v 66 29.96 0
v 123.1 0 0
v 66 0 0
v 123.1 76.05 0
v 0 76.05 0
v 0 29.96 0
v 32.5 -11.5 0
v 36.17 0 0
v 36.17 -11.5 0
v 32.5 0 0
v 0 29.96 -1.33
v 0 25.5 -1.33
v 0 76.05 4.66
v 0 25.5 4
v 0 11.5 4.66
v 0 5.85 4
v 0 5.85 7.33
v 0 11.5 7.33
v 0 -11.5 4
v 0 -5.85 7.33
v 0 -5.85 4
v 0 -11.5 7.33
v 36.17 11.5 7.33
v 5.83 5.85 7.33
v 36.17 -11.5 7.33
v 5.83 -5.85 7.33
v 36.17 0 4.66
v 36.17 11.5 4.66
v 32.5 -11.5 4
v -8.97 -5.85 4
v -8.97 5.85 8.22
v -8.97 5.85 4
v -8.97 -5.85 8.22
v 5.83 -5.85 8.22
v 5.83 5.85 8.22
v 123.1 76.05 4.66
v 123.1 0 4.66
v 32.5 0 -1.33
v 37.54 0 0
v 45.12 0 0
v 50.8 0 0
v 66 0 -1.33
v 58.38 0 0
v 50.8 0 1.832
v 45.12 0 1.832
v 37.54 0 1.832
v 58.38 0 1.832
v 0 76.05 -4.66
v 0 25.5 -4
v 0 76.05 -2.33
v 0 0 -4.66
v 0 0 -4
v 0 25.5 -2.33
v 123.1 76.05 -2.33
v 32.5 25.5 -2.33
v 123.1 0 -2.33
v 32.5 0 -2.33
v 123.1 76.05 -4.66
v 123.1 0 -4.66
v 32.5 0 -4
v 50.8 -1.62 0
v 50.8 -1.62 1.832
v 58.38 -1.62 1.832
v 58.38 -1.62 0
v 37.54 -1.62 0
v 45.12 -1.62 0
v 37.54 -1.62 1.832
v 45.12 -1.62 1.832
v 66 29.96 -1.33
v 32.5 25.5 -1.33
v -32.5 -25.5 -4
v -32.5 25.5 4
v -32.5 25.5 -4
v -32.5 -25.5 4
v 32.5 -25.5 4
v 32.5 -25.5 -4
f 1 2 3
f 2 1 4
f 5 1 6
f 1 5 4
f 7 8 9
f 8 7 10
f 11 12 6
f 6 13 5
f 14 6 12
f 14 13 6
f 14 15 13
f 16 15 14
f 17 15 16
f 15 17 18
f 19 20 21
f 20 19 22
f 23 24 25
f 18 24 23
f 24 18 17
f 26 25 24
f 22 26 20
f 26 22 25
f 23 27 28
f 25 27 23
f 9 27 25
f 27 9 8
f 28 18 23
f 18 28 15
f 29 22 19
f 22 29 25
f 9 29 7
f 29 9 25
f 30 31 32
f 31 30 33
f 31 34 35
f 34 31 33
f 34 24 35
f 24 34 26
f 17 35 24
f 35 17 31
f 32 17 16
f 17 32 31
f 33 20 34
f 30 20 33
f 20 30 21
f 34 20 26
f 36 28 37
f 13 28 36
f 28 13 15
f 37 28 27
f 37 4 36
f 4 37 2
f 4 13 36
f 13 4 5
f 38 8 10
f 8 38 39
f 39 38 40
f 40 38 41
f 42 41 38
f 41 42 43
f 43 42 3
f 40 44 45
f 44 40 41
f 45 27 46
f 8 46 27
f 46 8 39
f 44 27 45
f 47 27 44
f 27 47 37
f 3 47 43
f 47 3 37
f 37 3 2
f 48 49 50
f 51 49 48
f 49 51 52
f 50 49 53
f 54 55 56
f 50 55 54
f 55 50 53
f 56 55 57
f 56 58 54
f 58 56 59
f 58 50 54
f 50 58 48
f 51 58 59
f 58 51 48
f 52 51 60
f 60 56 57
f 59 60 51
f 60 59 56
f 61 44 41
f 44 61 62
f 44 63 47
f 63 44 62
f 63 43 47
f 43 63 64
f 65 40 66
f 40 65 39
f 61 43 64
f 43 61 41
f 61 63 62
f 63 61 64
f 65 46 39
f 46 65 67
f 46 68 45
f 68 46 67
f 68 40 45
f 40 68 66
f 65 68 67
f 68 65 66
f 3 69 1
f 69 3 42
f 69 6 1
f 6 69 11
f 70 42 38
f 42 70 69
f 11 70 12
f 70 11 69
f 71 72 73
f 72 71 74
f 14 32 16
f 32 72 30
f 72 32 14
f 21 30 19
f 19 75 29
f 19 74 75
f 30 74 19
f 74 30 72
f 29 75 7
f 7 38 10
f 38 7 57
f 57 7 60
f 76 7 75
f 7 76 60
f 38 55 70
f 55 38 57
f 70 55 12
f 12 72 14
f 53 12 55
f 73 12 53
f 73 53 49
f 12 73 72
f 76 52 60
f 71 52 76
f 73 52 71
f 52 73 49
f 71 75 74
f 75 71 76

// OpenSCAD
union() {
	union() {
		union() {
			union() {
				union() {
					union() {
						union() {
							union() {
								translate(v = [0, 0, 0]) {
									color(c = [0, 0, 1]) {
										cube(size = [15.2500000000, 24.3400000000, 3]);
									}
								}
								translate(v = [0, 0, 0]) {
									union() {
										color(c = [0, 0.5000000000, 0]) {
											translate(v = [0, 0, -2.3000000000]) {
												translate(v = [-9.9950000000, 0, 0]) {
													translate(v = [0, -11.9950000000, 0]) {
														cube(size = [23.9900000000, 23.9900000000, 2.3000000000]);
													}
												}
											}
										}
										color(c = [0, 0, 0]) {
											translate(v = [-4.2000000000, -4.2000000000, 0]) {
												cube(size = [8.4000000000, 8.4000000000, 2.3000000000]);
											}
											translate(v = [0, 0, 2.3000000000]) {
												cylinder(h = 2.3000000000, r1 = 4.0000000000, r2 = 4.0000000000);
											}
										}
									}
								}
							}
							translate(v = [0, 0, 0]) {
								union() {
									color(c = [0, 0.5000000000, 0]) {
										translate(v = [0, -11.5000000000, 0]) {
											cube(size = [36.1700000000, 23.0000000000, 7.3300000000]);
										}
									}
									color(c = [0.8240000000, 0.8240000000, 0.8240000000]) {
										translate(v = [-8.9700000000, 0, 0]) {
											translate(v = [0, 0, 2.3300000000]) {
												translate(v = [0, -5.8500000000, 0]) {
													cube(size = [14.8000000000, 11.7000000000, 5.8900000000]);
												}
											}
										}
									}
								}
							}
						}
						translate(v = [0, 0, 0]) {
							color(c = [0.7000000000, 0.7000000000, 0.7000000000]) {
								cube(center = true, size = [21.6200000000, 18.0000000000, 7.7700000000]);
							}
						}
					}
					translate(v = [0, 0, 0]) {
						union() {
							color(c = [0.5000000000, 0.5000000000, 0]) {
								cube(size = [123.1000000000, 76.0500000000, 4.6600000000]);
							}
							color(c = [0.8240000000, 0.8240000000, 0.8240000000]) {
								translate(v = [0, 0, -4.6600000000]) {
									cube(size = [123.1000000000, 76.0500000000, 2.3300000000]);
								}
							}
						}
					}
				}
				translate(v = [0, 0, 0]) {
					color(c = [0, 0, 1]) {
						cube(center = true, size = [48.0000000000, 40.7500000000, 5.6900000000]);
					}
				}
			}
			translate(v = [0, 0, 0]) {
				union() {
					union() {
						translate(v = [0, -1.6200000000, 0]) {
							translate(v = [37.5400000000, 0, 0]) {
								union() {
									translate(v = [13.2600000000, 0, 0]) {
										color(c = [0.8240000000, 0.8240000000, 0.8240000000]) {
											cube(size = [7.5800000000, 5.5500000000, 1.8325000000]);
										}
									}
									color(c = [0.8240000000, 0.8240000000, 0.8240000000]) {
										cube(size = [7.5800000000, 5.5500000000, 1.8325000000]);
									}
								}
							}
						}
						translate(v = [0, -1.6200000000, 0]) {
							translate(v = [8.0400000000, 0, 0]) {
								color(c = [0.8240000000, 0.8240000000, 0.8240000000]) {
									cube(size = [11.2400000000, 7.5800000000, 1.8325000000]);
								}
							}
						}
					}
					color(c = [0, 0.5000000000, 0]) {
						translate(v = [0, 0, -1.3300000000]) {
							cube(size = [66.0000000000, 29.9600000000, 1.3300000000]);
						}
					}
				}
			}
		}
		translate(v = [0, 0, 0]) {
			color(c = [0.9500000000, 0.9500000000, 0.9500000000]) {
				cube(center = true, size = [65.0000000000, 51.0000000000, 8.0000000000]);
			}
		}
	}
	translate(v = [0, 0, 0]) {
		color(c = [0.1000000000, 0.1000000000, 0.1000000000]) {
			cube(center = true, size = [45.6200000000, 34.0000000000, 8.0000000000]);
		}
	}
}
/***********************************************
*********      SolidPython code:      **********
************************************************
 
from __future__ import division
import os
import sys
import re
import subprocess

# Assumes SolidPython is in site-packages or elsewhwere in sys.path
from solid import *
from solid.utils import *

SEGMENTS = 48

to_be_rendered = right(10000000000)(cube(3))        # A shitty version of a null object. OpenSCAD get your shit together

def audioAmp(pos):
  if pos is None:
    pos = [0,0,0]
  audioAmp = color(Blue)(                         
                        cube([15.25,24.34,3])    
                        )
  return translate(pos)(audioAmp)
def camera(pos):

  if pos is None:
    pos = [0,0,0]
  rp_width = 23.99
  rp_length = 23.99
  rp_height = 2.3
  rectangularPlate = color([0,0.5,0])(                        
                                 down(rp_height)(left(rp_length/2-2)(back(rp_width/2)(cube([rp_length,rp_width,rp_height]))))
                                 )
  se_length = 8.4
  se_height = 2.3
  cameraBody = color(Black)(                        
                           translate([-se_length/2,-se_length/2,0])(cube([se_length,se_length,2.3])),
                           up(se_height)(cylinder(h = 2.3, r1 = 4.0, r2 = 4.0))     
                           )
  camera = rectangularPlate + cameraBody
  return translate(pos)(camera)
def powerBoost(pos):

  if pos is None:
    pos = [0,0,0]
  rp_length = 36.17
  rp_width = 23.00
  rp_height = 2.33
  odd_component_height = 7.33
  rectangularPlate = color([0,0.5,0])(                        
                                 back(rp_width/2)(cube([rp_length,rp_width,odd_component_height]))
                                 )
  usb_width = 11.7
  usb_length = 14.8
  usb_height = 5.89
  usbPort = color([0.824,0.824,0.824])(
                                     left(8.97)(up(rp_height)(back(usb_width/2)(cube([usb_length,usb_width,usb_height]))))
                                      )
  powerBoost = rectangularPlate + usbPort
  return translate(pos)(powerBoost)
def speaker(pos):

  if pos is None:
    pos = [0,0,0]
  length = 21.62
  width = 18.00
  height = 7.77
  speaker = color([0.7,0.7,0.7])(                        
                                cube([length,width,height],center = True)
                                )

  return translate(pos)(speaker)
def screen(pos):

  if pos is None:
    pos = [0,0,0]
  lcd_length = 123.10
  lcd_width = 76.05
  lcd_height = 2.33 * 2      # guesstimate
  screenLCD = color([0.5,0.5,0])(                        
                                cube([lcd_length,lcd_width,lcd_height])
                                )
  plate_length = 123.10
  plate_width = 76.05
  plate_height = 2.33
  circuitPlate = color([0.824,0.824,0.824])(
                                           down(plate_height*2)(cube([plate_length,plate_width,plate_height]))
                                           )
  powerBoost = screenLCD + circuitPlate
  return translate(pos)(powerBoost)
def screenDriver(pos):

  if pos is None:
    pos = [0,0,0]
  length = 48.00
  width = 40.75
  height = 5.69
  screenDriver = color(Blue)(                        
                                cube([length,width,height],center = True)
                                )

  return translate(pos)(screenDriver)
def piZero(pos):

  if pos is None:
    pos = [0,0,0]
  rp_length = 66.00
  rp_width = 29.96
  rp_height = 1.33
  rectangularPlate = color([0,0.5,0])(                        
                                     down(rp_height)(cube([rp_length,rp_width,rp_height]))
                                     )
  usb1_width = 5.55
  usb1_length = 7.58
  usb1_height = 7.33/4
  usbPortTemplate1 = color([0.824,0.824,0.824])(
                                               cube([usb1_length,usb1_width,usb1_height])
                                               )
  
  usbPort1 = back(31.58-29.96)(right(37.54)(right(50.8 - 37.54)(usbPortTemplate1) + usbPortTemplate1))
  
  usb2_length = 11.24
  usb2_width = 7.58
  usb2_height = 7.33/4
  usbPortTemplate2 = color([0.824,0.824,0.824])(
                                               cube([usb2_length,usb2_width,usb2_height])
                                               )
  usbPort2 = back(31.58-29.96)(right(8.04)(usbPortTemplate2))
  
  usbPort = usbPort1 + usbPort2
  piZero = usbPort + rectangularPlate
  return translate(pos)(piZero)
def battery(pos):

  if pos is None:
    pos = [0,0,0]
  length = 65.00
  width = 51.00
  height = 8.00
  battery = color([0.95,0.95,0.95])(                        
                                   cube([length,width,height],center = True)
                                   )

  return translate(pos)(battery)
def gsmChip(pos):

  if pos is None:
    pos = [0,0,0]
  length = 45.62
  width = 34.00
  height = 8.00
  gsmChip = color([0.1,0.1,0.1])(                        
                                cube([length,width,height],center = True)
                                )

  return translate(pos)(gsmChip)

pos = [0,0,0]



body  = audioAmp(pos)
body += camera(pos)
body += powerBoost(pos)
body += speaker(pos)
body += screen(pos)
body += screenDriver(pos)
body += piZero(pos)
body += battery(pos)
body += gsmChip(pos)

def audioAmp(pos):
  if pos is None:
    pos = [0,0,0]
  audioAmp = color(Blue)(                         
                        cube([15.25,24.34,3])    
                        )
  return translate(pos)(audioAmp)

def boundingBox(openscadObject):

  def isanumber(a):

    try:
        float(a)
        bool_a = True
    except:
        bool_a = False

    return bool_a

  # Create space for an openscad file
  cwd = os.getcwd()
  code_filepath = os.path.join(cwd, "tempOpenSCADfile.scad")
  stl_filepath  = os.path.join(cwd, "tempOpenSCADfile.stl")
  # Convert object to valid openSCAD code
  code = scad_render_to_file(openscadObject,code_filepath)

  # Ask openSCAD to generate STL
  subprocess.call(["openscad","-o",stl_filepath,code_filepath])

  # Time to use admesh to find min/max values
  cmd = ['admesh',stl_filepath]
  proc = subprocess.Popen('admesh tempOpenSCADfile.stl',shell=True,stdout=subprocess.PIPE)

  for line in proc.stdout:
    if 'Min X' in line.decode("utf-8"):
      my_list = line.decode("utf-8").split()
      [minX,maxX] = [float(x.replace(",", "")) for x in my_list if isanumber(x.replace(",", "")) == True]

    if 'Min Y' in line.decode("utf-8"):
      my_list = line.decode("utf-8").split()
      [minY,maxY] = [float(x.replace(",", "")) for x in my_list if isanumber(x.replace(",", "")) == True]

    if 'Min Z' in line.decode("utf-8"):
      my_list = line.decode("utf-8").split()
      [minZ,maxZ] = [float(x.replace(",", "")) for x in my_list if isanumber(x.replace(",", "")) == True]

  return [minX,maxX,minY,maxY,minZ,maxZ]
      

#  for line in proc.stdout.readlines():
#    if "minX" in line:
#      print(line)

def intersectionAssertion(object1,object2):

  def isanumber(a):

    try:
        float(a)
        bool_a = True
    except:
        bool_a = False

    return bool_a

  openscadObject = object1 * object2

  # Create space for an openscad file
  cwd = os.getcwd()
  code_filepath = os.path.join(cwd, "tempOpenSCADfile_intersection.scad")
  png_filepath  = os.path.join(cwd, "tempOpenSCADfile_intersection.png")
  # Convert object to valid openSCAD code
  code = scad_render_to_file(openscadObject,code_filepath)

  # Ask openSCAD to generate STL
  subprocess.call(["openscad","-o",png_filepath,code_filepath])

  # Time to use admesh to find min/max values
  cmd = 'magick ' + png_filepath + ' -define histogram:unique-colors=true -format %c histogram:info:- | wc -l'
  proc = subprocess.Popen(cmd,shell=True,stdout=subprocess.PIPE)

  for line in proc.stdout:
    ans = isanumber(line.decode("utf-8"))

  if ans is True:
    return True
  else:
    return False

if __name__ == '__main__':
    a = body
    print(intersectionAssertion(a,a))
    print(boundingBox(a))
#    scad_render_to_file(a, file_header='$fn = %s;' % SEGMENTS, include_orig_code=False)
 
 
************************************************/
